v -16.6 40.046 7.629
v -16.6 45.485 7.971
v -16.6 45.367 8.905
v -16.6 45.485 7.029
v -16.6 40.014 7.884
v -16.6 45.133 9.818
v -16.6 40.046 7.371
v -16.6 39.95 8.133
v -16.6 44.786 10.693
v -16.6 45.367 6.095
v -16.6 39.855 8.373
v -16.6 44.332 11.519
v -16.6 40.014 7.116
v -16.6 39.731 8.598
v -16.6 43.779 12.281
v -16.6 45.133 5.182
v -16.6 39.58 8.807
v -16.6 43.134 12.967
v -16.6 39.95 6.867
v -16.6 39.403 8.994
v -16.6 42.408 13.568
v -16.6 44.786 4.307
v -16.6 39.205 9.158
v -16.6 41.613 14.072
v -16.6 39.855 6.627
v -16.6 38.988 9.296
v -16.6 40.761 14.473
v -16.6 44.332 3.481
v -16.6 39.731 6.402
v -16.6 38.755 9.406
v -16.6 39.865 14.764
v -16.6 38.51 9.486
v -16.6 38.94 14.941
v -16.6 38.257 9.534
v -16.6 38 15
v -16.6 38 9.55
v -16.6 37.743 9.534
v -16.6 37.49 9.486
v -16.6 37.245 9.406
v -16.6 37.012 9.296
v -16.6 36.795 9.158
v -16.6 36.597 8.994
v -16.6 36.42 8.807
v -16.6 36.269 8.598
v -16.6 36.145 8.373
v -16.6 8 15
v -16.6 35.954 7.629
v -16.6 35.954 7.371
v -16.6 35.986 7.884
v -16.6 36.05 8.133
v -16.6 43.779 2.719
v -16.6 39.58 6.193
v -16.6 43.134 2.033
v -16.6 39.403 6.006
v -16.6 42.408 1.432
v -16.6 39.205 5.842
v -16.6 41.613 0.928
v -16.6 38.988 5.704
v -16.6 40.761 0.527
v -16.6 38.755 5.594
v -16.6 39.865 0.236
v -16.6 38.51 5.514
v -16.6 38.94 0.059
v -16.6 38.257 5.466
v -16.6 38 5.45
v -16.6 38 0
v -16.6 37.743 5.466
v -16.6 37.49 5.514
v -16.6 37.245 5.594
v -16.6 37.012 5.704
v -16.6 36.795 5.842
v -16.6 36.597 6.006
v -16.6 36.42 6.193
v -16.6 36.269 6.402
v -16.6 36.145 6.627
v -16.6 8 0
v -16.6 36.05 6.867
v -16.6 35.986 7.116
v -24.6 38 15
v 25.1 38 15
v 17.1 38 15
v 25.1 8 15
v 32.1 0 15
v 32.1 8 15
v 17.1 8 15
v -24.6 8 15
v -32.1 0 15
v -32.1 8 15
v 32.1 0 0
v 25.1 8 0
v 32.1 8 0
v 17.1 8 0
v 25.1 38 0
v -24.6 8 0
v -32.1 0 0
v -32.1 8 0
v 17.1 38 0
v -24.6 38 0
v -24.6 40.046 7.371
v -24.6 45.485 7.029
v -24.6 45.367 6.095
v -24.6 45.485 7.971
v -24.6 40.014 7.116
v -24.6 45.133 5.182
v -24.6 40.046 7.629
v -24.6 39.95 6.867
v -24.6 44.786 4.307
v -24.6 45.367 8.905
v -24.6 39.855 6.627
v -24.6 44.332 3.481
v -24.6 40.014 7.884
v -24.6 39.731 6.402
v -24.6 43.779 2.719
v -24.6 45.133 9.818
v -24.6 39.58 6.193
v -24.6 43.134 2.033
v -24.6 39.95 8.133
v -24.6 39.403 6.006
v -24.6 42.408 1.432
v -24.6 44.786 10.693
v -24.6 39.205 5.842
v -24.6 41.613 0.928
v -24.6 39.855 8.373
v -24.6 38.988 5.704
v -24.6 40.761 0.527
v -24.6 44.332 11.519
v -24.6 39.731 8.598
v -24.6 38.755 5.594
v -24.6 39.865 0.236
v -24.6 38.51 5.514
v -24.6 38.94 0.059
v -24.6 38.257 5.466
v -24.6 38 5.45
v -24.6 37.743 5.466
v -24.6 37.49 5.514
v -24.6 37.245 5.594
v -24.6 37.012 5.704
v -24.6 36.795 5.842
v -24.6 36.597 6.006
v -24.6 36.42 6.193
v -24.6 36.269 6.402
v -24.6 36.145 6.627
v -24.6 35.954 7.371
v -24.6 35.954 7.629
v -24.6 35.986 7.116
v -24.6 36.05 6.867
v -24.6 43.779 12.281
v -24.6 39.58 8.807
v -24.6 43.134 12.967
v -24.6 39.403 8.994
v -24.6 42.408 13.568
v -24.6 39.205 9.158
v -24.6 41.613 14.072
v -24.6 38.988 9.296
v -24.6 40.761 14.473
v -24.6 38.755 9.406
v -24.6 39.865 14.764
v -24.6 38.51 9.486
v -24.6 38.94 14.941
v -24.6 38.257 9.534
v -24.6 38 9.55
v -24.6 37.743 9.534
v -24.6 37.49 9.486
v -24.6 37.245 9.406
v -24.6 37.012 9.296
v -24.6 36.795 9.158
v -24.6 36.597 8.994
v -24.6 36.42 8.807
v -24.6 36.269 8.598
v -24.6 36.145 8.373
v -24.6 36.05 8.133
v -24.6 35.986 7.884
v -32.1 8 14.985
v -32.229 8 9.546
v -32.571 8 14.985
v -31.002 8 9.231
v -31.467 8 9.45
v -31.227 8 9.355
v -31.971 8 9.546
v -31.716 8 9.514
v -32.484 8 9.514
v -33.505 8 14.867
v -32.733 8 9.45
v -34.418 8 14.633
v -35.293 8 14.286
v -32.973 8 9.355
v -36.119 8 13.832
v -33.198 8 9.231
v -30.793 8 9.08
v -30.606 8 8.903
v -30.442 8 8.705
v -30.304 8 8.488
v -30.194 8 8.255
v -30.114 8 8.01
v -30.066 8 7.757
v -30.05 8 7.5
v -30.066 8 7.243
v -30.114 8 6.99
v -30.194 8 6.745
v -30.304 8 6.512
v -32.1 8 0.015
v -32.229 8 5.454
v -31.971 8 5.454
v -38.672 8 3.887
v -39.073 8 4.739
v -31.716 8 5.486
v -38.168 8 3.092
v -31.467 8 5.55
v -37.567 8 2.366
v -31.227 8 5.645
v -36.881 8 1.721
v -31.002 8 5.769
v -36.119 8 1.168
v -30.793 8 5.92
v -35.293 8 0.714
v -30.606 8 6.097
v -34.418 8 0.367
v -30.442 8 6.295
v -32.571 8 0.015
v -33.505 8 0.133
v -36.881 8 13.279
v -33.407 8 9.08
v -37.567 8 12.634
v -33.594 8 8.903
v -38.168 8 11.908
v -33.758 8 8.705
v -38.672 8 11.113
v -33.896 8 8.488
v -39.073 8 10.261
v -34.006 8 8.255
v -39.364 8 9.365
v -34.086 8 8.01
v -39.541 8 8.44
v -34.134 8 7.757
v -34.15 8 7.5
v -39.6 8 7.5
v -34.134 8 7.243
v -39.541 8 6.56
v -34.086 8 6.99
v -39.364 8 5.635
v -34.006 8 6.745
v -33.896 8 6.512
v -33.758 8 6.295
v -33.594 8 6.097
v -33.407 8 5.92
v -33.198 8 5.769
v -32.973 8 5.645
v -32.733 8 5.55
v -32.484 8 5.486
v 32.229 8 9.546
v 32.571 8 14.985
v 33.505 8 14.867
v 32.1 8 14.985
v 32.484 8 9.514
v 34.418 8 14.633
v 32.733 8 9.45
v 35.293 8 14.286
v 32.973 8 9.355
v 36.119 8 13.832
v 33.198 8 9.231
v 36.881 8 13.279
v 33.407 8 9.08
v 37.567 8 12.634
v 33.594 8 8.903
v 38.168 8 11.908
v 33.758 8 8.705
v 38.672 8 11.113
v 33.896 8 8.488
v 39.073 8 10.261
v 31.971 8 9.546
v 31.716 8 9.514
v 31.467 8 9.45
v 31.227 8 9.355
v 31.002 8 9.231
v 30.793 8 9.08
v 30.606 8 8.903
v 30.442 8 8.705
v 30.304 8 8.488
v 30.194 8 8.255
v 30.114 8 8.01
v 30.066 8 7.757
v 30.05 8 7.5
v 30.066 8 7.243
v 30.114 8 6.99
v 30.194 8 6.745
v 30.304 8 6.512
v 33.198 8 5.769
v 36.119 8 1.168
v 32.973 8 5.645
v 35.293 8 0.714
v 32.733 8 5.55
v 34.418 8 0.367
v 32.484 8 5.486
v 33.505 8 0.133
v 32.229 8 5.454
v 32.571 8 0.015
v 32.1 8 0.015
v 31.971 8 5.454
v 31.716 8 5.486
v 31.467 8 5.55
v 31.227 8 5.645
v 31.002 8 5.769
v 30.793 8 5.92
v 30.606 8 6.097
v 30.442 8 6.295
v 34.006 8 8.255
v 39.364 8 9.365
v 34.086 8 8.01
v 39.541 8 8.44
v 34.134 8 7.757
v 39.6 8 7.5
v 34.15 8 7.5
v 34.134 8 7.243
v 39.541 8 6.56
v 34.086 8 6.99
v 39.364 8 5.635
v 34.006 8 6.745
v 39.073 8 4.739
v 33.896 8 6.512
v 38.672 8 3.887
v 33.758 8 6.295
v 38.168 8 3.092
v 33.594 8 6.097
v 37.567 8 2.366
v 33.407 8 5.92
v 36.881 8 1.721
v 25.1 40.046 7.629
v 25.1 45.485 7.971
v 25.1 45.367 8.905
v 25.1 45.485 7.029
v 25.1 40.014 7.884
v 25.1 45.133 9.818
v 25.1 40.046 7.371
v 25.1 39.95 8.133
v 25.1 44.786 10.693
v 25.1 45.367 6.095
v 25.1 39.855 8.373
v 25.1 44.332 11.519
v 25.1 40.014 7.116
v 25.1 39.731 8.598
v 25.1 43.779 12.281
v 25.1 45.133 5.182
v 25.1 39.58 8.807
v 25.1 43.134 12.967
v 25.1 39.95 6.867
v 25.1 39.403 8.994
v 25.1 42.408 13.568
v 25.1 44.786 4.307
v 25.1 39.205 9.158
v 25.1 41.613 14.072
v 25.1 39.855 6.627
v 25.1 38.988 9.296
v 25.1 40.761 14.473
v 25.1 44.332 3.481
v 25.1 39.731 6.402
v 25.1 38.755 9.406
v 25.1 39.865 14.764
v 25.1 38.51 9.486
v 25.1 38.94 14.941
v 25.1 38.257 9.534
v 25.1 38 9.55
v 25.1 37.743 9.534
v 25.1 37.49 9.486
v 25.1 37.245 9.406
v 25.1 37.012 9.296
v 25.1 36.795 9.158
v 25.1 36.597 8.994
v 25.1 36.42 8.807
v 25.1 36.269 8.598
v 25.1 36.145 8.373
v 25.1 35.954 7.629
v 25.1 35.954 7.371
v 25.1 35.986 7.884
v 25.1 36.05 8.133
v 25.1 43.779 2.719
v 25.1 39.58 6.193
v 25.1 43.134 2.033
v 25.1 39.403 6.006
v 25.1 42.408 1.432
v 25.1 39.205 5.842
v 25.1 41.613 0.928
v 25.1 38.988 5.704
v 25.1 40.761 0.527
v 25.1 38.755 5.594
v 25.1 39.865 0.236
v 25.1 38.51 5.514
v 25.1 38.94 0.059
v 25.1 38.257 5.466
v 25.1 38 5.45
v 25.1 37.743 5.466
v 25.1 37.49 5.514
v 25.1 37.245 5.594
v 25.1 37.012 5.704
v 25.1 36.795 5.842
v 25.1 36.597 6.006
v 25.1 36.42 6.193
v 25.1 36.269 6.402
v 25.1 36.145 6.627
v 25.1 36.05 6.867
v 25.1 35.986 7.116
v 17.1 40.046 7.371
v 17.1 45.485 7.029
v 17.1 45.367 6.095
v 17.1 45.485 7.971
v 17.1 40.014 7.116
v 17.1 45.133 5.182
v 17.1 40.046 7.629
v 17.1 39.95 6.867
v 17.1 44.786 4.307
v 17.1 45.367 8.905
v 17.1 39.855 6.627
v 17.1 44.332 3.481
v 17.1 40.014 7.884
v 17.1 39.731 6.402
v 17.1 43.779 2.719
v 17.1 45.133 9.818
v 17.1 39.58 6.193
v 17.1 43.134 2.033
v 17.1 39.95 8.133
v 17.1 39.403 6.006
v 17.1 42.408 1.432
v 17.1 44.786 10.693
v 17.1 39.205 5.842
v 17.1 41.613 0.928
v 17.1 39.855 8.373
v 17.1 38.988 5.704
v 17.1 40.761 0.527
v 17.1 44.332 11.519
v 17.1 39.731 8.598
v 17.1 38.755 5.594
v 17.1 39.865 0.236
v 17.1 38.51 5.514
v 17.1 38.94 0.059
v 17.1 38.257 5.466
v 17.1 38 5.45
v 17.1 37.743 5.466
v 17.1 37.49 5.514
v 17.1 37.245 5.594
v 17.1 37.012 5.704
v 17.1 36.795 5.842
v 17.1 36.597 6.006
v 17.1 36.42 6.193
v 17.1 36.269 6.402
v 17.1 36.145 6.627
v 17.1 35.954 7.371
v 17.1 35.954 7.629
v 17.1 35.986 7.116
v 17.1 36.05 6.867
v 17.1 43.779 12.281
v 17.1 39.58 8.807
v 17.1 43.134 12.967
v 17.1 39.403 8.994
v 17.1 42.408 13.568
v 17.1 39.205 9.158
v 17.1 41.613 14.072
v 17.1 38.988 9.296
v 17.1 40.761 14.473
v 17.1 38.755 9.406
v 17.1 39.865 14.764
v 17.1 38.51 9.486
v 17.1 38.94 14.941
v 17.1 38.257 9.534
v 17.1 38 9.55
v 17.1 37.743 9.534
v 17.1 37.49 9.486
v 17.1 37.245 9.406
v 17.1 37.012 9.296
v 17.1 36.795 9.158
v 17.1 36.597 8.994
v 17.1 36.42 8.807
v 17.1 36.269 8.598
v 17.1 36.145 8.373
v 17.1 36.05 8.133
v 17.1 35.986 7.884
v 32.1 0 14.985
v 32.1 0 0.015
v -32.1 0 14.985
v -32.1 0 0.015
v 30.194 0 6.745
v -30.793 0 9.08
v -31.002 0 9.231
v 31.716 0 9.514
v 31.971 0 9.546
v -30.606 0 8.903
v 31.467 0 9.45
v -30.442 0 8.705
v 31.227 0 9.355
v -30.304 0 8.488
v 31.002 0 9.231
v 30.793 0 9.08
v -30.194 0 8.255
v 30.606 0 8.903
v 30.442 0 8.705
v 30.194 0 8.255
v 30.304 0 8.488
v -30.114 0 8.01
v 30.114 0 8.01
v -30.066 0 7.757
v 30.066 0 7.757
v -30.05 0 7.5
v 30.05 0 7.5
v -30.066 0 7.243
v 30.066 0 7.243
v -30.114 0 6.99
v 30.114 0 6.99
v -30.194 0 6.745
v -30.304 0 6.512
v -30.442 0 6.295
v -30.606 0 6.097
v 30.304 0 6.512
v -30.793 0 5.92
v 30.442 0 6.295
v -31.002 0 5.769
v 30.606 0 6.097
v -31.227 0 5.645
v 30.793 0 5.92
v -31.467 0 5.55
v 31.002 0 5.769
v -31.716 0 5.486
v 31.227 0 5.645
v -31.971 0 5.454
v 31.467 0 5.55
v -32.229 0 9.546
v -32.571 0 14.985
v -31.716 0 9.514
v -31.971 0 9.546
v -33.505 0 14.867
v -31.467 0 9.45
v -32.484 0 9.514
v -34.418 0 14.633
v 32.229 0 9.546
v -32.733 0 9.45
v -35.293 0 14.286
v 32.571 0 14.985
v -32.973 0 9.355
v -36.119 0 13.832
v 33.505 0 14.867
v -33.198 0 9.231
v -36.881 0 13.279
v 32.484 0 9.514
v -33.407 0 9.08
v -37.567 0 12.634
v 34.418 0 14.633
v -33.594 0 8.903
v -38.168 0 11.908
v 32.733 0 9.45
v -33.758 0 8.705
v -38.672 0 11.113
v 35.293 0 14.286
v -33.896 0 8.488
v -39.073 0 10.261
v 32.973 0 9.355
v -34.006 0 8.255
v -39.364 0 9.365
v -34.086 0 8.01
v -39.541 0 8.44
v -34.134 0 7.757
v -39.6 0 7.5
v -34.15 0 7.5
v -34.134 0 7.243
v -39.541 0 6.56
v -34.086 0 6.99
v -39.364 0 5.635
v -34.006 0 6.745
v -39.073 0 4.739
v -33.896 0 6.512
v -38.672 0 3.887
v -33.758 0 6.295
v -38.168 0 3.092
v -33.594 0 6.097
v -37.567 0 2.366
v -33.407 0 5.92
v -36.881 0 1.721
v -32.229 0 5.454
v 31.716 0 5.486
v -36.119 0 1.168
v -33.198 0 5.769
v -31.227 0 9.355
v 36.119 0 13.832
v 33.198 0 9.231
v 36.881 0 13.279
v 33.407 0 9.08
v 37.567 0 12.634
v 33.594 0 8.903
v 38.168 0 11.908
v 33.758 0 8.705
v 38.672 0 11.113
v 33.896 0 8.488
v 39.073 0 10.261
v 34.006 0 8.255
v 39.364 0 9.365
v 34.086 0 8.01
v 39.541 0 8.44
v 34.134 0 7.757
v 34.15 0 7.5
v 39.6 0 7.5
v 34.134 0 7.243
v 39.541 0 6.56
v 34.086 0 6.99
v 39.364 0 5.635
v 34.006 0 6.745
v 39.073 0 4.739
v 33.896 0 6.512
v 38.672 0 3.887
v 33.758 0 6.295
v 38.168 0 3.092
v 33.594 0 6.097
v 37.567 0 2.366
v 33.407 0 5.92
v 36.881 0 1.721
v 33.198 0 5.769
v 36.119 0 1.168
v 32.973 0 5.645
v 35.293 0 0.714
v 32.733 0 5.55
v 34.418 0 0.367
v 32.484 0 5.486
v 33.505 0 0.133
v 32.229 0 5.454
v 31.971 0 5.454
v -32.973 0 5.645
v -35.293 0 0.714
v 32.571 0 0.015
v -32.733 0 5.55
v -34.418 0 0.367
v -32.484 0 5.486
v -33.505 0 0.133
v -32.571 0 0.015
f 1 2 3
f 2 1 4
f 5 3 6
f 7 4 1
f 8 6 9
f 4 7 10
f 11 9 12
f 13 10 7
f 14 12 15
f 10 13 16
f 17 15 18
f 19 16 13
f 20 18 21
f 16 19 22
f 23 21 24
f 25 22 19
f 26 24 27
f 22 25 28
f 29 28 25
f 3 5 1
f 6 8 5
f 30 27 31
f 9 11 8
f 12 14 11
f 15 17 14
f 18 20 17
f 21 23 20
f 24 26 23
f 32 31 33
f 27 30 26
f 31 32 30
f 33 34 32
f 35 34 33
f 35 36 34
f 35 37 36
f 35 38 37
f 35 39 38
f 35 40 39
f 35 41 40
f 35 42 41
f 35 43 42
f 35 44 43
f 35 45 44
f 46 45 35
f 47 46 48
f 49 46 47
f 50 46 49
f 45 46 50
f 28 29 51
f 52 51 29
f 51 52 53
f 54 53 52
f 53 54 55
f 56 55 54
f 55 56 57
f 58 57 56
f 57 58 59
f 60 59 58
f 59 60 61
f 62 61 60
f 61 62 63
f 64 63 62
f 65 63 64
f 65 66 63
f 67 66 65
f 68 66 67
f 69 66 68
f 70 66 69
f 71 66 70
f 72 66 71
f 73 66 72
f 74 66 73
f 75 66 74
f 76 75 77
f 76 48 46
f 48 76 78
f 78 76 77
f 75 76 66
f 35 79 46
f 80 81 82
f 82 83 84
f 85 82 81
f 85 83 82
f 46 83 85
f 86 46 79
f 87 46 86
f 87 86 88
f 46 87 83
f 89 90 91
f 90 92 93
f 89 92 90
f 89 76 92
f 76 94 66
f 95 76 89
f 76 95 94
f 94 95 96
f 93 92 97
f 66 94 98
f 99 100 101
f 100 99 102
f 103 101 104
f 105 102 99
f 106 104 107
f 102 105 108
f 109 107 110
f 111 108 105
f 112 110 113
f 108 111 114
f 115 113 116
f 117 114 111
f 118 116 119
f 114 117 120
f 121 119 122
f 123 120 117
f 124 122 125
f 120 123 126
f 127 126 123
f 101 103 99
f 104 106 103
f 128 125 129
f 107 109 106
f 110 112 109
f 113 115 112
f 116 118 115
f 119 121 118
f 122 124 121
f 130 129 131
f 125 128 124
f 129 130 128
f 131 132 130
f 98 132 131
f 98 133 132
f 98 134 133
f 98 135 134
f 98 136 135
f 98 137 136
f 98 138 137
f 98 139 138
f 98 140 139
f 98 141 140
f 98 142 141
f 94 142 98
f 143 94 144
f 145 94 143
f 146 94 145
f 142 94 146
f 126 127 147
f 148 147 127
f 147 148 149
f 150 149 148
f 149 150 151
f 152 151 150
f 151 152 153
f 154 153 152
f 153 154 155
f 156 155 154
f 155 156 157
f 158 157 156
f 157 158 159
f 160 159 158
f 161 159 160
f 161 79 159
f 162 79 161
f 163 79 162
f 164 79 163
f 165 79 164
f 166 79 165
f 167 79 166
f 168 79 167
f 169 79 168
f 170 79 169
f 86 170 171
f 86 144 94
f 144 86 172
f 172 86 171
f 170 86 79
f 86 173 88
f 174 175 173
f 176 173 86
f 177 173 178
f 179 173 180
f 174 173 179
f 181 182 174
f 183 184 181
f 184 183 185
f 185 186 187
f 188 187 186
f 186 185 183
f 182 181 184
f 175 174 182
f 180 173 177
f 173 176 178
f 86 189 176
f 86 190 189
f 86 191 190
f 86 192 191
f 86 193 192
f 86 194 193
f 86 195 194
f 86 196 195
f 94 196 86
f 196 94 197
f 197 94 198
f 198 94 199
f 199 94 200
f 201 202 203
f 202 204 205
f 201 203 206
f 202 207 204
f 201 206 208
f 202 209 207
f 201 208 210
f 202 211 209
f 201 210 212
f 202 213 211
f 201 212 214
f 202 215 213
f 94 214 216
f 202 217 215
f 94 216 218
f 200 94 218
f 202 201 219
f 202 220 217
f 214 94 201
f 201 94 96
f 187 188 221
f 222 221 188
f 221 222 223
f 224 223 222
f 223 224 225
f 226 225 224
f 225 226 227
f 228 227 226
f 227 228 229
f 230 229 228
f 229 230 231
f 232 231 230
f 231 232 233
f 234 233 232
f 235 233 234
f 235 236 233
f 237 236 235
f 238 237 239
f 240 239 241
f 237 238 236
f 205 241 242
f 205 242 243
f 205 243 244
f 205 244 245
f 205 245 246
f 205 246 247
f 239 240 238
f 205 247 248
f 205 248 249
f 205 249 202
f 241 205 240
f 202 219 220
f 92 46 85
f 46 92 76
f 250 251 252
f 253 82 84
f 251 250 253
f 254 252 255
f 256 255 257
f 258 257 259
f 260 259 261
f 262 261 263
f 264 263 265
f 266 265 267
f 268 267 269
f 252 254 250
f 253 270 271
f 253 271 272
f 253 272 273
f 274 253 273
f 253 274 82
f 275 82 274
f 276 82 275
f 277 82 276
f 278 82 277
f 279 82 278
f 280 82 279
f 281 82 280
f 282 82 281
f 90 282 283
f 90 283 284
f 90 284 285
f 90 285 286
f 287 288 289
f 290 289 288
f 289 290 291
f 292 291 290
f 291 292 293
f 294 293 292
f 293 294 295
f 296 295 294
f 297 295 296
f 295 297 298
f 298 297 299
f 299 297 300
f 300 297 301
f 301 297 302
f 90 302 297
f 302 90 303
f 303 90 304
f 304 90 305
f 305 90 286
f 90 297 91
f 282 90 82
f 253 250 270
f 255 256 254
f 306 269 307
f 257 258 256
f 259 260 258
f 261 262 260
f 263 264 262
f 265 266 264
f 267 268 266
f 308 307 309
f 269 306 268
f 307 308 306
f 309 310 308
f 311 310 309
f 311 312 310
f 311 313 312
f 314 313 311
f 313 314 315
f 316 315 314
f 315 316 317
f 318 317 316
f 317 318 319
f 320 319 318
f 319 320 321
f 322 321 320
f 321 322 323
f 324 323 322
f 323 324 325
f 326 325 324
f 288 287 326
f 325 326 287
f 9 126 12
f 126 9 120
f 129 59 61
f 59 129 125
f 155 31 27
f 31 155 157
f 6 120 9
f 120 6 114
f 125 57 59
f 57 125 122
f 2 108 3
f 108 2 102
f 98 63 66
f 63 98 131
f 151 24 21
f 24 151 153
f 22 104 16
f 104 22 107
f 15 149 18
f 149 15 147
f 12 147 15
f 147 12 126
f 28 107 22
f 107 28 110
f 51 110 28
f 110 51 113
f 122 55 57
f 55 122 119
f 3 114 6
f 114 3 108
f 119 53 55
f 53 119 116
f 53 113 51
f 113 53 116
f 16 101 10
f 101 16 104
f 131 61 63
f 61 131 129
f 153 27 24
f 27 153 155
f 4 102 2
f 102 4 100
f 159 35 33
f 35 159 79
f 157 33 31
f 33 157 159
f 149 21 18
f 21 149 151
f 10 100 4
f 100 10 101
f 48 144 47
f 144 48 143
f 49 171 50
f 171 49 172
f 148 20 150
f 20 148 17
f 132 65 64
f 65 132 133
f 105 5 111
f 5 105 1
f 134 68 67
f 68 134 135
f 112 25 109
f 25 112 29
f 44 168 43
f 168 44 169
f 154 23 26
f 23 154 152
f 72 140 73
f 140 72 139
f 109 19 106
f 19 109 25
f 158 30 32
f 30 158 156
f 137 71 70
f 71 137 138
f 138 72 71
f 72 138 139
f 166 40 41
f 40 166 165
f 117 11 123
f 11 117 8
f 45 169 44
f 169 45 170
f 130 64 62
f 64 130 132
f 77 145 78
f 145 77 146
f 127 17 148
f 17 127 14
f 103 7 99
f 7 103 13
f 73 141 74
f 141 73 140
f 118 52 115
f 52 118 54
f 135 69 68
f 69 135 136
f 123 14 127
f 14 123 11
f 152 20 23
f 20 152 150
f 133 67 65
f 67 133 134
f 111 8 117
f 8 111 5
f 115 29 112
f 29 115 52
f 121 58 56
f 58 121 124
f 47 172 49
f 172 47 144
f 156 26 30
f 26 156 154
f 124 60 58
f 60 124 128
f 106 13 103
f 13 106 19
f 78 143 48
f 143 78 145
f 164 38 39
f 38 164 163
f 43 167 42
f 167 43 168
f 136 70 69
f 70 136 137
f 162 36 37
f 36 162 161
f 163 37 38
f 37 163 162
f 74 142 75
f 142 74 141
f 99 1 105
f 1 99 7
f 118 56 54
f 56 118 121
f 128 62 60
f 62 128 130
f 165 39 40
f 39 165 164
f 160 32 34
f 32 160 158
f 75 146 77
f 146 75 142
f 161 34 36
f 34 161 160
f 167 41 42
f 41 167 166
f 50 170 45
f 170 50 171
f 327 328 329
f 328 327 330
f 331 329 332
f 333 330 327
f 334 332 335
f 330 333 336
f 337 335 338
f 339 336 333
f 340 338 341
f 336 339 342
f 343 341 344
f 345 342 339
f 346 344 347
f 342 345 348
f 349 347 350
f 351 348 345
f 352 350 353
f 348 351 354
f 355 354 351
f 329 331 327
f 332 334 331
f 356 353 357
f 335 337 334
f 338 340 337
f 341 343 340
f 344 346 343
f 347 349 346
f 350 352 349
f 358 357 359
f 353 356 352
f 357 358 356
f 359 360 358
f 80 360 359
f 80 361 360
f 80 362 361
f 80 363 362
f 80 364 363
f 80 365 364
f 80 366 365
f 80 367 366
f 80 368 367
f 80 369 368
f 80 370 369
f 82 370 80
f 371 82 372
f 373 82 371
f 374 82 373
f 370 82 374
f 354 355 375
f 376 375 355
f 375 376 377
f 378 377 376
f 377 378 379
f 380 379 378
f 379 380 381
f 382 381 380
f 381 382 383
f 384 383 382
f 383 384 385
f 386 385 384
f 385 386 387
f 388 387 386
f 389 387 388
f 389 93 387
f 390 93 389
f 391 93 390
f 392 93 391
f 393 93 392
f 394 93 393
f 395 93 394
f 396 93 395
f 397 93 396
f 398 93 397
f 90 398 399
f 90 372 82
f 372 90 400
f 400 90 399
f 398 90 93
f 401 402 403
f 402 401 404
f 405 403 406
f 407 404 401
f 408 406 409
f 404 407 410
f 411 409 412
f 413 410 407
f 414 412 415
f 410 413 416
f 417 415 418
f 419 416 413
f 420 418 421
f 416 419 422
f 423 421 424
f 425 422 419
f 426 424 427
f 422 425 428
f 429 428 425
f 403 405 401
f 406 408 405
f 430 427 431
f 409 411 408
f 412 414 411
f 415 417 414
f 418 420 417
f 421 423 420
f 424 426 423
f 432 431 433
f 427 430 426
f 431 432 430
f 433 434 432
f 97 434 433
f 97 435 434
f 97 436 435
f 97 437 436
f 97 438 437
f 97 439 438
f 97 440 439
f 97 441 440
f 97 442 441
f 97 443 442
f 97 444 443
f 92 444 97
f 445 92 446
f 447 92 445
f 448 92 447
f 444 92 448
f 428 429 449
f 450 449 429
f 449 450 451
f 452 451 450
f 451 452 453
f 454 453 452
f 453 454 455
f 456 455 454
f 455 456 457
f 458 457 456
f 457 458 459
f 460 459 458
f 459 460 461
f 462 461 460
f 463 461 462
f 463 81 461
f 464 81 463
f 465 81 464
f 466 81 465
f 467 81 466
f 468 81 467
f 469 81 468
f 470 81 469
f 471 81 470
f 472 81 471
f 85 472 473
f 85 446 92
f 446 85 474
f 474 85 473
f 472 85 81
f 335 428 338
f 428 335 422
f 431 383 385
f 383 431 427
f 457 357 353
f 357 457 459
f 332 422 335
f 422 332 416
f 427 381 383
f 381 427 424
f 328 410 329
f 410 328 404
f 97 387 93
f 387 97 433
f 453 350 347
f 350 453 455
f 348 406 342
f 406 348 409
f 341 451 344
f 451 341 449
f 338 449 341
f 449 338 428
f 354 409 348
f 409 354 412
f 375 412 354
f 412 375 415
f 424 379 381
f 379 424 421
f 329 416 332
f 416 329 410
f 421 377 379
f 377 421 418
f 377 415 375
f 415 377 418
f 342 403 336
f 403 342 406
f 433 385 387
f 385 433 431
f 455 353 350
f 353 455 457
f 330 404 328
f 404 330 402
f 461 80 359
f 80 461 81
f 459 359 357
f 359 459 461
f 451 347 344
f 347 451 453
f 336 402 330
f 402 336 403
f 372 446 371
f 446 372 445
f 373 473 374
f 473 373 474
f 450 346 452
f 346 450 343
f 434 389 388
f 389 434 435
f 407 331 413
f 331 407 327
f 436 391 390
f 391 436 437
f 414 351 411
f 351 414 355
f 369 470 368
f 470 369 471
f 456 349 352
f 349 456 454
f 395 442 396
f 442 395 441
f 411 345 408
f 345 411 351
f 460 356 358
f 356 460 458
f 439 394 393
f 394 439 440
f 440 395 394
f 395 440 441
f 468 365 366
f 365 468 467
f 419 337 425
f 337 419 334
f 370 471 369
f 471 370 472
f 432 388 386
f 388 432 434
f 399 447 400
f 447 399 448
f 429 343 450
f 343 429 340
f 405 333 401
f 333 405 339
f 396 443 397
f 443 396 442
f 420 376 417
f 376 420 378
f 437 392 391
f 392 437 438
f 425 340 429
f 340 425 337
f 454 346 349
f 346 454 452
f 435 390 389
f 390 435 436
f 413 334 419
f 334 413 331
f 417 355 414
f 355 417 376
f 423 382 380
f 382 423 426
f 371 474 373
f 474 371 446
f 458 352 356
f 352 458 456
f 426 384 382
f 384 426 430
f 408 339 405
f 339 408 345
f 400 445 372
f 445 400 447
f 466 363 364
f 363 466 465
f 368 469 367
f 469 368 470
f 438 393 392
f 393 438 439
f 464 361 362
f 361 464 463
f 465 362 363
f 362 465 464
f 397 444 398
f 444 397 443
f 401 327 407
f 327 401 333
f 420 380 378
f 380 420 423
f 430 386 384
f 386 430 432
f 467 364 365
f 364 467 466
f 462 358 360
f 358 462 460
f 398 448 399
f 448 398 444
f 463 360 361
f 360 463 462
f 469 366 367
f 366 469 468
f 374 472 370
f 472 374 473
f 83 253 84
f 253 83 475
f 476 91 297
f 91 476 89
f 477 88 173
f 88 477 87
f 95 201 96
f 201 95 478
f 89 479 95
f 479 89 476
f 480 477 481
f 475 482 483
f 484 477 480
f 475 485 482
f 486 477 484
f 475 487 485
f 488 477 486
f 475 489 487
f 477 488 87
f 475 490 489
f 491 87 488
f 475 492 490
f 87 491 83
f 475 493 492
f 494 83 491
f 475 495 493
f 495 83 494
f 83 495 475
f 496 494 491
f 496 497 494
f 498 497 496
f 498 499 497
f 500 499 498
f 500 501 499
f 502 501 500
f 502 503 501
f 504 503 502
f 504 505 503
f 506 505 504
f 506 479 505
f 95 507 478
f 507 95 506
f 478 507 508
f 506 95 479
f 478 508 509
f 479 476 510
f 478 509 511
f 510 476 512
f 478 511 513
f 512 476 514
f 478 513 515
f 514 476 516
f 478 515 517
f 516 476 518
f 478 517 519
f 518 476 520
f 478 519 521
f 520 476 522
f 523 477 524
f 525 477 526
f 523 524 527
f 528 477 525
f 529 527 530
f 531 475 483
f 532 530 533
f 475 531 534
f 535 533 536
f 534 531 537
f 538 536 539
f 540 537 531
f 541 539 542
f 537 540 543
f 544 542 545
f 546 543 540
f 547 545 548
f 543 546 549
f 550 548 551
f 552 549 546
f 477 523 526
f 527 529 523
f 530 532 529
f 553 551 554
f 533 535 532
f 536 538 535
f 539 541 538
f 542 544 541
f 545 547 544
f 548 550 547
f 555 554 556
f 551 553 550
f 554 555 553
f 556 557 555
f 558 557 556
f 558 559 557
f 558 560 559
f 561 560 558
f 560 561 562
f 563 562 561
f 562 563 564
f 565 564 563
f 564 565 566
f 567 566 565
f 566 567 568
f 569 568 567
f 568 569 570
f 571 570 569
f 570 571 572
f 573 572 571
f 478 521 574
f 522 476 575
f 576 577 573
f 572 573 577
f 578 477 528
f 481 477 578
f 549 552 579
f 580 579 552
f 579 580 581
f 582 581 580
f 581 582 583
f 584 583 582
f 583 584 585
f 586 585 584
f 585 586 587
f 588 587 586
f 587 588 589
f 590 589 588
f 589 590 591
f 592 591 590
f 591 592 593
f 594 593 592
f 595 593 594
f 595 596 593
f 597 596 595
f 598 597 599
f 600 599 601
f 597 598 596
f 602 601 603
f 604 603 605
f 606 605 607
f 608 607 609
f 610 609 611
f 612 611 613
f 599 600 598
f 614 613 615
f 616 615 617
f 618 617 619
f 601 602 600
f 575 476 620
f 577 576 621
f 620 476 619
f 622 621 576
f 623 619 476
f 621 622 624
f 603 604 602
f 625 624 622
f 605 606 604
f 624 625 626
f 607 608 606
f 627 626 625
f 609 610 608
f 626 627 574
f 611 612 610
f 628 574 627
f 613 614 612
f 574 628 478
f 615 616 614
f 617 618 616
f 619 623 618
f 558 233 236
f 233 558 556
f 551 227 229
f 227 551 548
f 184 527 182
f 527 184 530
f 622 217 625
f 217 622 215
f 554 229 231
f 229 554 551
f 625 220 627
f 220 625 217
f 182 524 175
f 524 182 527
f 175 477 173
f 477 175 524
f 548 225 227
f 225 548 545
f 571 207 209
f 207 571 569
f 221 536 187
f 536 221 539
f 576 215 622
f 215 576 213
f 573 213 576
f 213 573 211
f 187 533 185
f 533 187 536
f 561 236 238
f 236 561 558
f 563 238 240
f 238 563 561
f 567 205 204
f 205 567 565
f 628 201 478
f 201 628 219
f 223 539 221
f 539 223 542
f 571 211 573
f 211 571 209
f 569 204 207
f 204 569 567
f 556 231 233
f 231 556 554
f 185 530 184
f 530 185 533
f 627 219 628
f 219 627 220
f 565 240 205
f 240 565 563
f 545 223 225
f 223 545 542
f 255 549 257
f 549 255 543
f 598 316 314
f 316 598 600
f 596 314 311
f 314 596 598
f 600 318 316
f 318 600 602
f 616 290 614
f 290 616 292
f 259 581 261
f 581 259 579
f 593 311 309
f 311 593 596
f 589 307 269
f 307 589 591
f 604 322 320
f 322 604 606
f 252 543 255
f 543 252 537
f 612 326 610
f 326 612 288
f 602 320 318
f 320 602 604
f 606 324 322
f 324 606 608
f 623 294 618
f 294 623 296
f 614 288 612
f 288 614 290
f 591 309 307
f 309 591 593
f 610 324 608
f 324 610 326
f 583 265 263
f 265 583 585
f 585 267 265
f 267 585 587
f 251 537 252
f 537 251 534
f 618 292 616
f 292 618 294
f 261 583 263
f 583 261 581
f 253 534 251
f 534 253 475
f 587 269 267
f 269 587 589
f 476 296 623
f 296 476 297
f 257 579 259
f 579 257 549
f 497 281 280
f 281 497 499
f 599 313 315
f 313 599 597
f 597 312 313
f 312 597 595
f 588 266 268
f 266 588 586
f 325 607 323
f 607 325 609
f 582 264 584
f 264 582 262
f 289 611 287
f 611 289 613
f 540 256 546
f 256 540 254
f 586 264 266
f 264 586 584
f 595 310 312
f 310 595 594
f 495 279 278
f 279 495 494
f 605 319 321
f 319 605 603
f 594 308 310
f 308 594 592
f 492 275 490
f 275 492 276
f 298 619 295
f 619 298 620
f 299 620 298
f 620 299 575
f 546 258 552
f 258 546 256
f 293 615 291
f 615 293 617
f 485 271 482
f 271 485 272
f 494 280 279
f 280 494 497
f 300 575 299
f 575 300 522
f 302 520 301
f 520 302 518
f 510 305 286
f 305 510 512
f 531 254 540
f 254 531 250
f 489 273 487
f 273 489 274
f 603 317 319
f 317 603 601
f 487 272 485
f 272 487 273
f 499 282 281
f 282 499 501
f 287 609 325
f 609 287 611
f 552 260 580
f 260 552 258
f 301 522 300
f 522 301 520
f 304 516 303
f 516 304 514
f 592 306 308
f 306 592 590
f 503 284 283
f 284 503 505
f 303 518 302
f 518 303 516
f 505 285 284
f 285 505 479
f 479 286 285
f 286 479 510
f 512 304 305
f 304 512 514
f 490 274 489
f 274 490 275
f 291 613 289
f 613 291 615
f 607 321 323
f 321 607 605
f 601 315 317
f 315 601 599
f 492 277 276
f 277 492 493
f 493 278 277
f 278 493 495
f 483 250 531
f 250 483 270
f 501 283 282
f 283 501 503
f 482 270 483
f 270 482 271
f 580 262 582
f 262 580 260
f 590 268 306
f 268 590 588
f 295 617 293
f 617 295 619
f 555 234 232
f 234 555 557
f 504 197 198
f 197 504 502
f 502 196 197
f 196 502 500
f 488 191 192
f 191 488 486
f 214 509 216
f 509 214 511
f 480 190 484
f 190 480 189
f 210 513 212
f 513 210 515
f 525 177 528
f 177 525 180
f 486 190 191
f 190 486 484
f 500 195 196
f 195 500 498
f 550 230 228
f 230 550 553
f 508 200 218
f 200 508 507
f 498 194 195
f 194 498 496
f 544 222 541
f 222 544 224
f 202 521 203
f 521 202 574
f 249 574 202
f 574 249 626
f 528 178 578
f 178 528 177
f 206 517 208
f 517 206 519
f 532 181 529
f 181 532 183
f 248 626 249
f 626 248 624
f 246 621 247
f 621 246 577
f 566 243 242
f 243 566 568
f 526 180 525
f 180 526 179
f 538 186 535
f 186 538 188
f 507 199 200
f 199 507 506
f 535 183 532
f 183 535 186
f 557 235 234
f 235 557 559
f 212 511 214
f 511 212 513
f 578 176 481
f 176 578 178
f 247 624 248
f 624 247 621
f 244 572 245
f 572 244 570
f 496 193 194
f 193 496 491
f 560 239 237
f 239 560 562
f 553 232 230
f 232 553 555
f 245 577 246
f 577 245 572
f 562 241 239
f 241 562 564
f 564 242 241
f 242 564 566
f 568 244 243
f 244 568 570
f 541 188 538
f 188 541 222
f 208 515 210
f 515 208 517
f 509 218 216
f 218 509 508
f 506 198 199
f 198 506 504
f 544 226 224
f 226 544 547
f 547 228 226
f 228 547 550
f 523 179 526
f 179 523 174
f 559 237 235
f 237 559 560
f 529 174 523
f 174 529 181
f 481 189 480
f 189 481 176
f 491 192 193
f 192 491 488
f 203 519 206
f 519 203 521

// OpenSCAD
/**

Brackets for Teyes reversing camera - chassis mount
@idnorton

Licenced as Creative Commons Attribution Non Commercial 3.0
See https://creativecommons.org/licenses/by-nc/3.0/

Specifically you may not sell the design or products using the design.
You're welcome to use the design to build things for your own use :)

Perimiters: 4
Seam position: Random

**/

bracket_spacing = 34.2;
bracket_d = 4.1;
bracket_thickness = 15;
bracket_height = 30;
bracket_width = bracket_spacing + (2*bracket_thickness) + 0;

bolt_spacing = 50;
bolt_d = 4.1;

post_width = 8;

$fn = 50;

difference() {
    union() {
        translate([0 - (bracket_width/2), 0, 0]) {
            cube([bracket_width, post_width, bracket_thickness]);
        }
    
        translate([0 - (bracket_width/2), 0, bracket_thickness/2]) {
            rotate([270, 0, 0]) cylinder(h = post_width, d = bracket_thickness);
        }

        translate([(bracket_width/2), 0, bracket_thickness/2]) {
            rotate([270, 0, 0]) cylinder(h = post_width, d = bracket_thickness);
        }
    }

    translate([(bracket_width/2), 0, bracket_thickness/2]) {
        rotate([270, 0, 0]) cylinder(h = post_width, d = bracket_d);
    }
    
    translate([0 - (bracket_width/2), 0, bracket_thickness/2]) {
        rotate([270, 0, 0]) cylinder(h = post_width, d = bracket_d);
    }
}

translate([0 - (bracket_spacing/2) - bracket_thickness/2, post_width, 0]) {
    post();
}

translate([(bracket_spacing/2), post_width, 0]) {
    post();
}

module post() {
    difference() {
        union() {
            cube([post_width, bracket_height, bracket_thickness]);

            translate([post_width/2, bracket_height, bracket_thickness/2]) {
                rotate([0, 90, 0]) {
                    cylinder(h = post_width, d = bracket_thickness, center = true);
                }
            }
        }
        
        translate([0, bracket_height, bracket_thickness/2]) {
            rotate([0, 90, 0]) {
                cylinder(h = (bracket_thickness * 2), d = bracket_d, center = true);
            }
        }
    }
    

}
